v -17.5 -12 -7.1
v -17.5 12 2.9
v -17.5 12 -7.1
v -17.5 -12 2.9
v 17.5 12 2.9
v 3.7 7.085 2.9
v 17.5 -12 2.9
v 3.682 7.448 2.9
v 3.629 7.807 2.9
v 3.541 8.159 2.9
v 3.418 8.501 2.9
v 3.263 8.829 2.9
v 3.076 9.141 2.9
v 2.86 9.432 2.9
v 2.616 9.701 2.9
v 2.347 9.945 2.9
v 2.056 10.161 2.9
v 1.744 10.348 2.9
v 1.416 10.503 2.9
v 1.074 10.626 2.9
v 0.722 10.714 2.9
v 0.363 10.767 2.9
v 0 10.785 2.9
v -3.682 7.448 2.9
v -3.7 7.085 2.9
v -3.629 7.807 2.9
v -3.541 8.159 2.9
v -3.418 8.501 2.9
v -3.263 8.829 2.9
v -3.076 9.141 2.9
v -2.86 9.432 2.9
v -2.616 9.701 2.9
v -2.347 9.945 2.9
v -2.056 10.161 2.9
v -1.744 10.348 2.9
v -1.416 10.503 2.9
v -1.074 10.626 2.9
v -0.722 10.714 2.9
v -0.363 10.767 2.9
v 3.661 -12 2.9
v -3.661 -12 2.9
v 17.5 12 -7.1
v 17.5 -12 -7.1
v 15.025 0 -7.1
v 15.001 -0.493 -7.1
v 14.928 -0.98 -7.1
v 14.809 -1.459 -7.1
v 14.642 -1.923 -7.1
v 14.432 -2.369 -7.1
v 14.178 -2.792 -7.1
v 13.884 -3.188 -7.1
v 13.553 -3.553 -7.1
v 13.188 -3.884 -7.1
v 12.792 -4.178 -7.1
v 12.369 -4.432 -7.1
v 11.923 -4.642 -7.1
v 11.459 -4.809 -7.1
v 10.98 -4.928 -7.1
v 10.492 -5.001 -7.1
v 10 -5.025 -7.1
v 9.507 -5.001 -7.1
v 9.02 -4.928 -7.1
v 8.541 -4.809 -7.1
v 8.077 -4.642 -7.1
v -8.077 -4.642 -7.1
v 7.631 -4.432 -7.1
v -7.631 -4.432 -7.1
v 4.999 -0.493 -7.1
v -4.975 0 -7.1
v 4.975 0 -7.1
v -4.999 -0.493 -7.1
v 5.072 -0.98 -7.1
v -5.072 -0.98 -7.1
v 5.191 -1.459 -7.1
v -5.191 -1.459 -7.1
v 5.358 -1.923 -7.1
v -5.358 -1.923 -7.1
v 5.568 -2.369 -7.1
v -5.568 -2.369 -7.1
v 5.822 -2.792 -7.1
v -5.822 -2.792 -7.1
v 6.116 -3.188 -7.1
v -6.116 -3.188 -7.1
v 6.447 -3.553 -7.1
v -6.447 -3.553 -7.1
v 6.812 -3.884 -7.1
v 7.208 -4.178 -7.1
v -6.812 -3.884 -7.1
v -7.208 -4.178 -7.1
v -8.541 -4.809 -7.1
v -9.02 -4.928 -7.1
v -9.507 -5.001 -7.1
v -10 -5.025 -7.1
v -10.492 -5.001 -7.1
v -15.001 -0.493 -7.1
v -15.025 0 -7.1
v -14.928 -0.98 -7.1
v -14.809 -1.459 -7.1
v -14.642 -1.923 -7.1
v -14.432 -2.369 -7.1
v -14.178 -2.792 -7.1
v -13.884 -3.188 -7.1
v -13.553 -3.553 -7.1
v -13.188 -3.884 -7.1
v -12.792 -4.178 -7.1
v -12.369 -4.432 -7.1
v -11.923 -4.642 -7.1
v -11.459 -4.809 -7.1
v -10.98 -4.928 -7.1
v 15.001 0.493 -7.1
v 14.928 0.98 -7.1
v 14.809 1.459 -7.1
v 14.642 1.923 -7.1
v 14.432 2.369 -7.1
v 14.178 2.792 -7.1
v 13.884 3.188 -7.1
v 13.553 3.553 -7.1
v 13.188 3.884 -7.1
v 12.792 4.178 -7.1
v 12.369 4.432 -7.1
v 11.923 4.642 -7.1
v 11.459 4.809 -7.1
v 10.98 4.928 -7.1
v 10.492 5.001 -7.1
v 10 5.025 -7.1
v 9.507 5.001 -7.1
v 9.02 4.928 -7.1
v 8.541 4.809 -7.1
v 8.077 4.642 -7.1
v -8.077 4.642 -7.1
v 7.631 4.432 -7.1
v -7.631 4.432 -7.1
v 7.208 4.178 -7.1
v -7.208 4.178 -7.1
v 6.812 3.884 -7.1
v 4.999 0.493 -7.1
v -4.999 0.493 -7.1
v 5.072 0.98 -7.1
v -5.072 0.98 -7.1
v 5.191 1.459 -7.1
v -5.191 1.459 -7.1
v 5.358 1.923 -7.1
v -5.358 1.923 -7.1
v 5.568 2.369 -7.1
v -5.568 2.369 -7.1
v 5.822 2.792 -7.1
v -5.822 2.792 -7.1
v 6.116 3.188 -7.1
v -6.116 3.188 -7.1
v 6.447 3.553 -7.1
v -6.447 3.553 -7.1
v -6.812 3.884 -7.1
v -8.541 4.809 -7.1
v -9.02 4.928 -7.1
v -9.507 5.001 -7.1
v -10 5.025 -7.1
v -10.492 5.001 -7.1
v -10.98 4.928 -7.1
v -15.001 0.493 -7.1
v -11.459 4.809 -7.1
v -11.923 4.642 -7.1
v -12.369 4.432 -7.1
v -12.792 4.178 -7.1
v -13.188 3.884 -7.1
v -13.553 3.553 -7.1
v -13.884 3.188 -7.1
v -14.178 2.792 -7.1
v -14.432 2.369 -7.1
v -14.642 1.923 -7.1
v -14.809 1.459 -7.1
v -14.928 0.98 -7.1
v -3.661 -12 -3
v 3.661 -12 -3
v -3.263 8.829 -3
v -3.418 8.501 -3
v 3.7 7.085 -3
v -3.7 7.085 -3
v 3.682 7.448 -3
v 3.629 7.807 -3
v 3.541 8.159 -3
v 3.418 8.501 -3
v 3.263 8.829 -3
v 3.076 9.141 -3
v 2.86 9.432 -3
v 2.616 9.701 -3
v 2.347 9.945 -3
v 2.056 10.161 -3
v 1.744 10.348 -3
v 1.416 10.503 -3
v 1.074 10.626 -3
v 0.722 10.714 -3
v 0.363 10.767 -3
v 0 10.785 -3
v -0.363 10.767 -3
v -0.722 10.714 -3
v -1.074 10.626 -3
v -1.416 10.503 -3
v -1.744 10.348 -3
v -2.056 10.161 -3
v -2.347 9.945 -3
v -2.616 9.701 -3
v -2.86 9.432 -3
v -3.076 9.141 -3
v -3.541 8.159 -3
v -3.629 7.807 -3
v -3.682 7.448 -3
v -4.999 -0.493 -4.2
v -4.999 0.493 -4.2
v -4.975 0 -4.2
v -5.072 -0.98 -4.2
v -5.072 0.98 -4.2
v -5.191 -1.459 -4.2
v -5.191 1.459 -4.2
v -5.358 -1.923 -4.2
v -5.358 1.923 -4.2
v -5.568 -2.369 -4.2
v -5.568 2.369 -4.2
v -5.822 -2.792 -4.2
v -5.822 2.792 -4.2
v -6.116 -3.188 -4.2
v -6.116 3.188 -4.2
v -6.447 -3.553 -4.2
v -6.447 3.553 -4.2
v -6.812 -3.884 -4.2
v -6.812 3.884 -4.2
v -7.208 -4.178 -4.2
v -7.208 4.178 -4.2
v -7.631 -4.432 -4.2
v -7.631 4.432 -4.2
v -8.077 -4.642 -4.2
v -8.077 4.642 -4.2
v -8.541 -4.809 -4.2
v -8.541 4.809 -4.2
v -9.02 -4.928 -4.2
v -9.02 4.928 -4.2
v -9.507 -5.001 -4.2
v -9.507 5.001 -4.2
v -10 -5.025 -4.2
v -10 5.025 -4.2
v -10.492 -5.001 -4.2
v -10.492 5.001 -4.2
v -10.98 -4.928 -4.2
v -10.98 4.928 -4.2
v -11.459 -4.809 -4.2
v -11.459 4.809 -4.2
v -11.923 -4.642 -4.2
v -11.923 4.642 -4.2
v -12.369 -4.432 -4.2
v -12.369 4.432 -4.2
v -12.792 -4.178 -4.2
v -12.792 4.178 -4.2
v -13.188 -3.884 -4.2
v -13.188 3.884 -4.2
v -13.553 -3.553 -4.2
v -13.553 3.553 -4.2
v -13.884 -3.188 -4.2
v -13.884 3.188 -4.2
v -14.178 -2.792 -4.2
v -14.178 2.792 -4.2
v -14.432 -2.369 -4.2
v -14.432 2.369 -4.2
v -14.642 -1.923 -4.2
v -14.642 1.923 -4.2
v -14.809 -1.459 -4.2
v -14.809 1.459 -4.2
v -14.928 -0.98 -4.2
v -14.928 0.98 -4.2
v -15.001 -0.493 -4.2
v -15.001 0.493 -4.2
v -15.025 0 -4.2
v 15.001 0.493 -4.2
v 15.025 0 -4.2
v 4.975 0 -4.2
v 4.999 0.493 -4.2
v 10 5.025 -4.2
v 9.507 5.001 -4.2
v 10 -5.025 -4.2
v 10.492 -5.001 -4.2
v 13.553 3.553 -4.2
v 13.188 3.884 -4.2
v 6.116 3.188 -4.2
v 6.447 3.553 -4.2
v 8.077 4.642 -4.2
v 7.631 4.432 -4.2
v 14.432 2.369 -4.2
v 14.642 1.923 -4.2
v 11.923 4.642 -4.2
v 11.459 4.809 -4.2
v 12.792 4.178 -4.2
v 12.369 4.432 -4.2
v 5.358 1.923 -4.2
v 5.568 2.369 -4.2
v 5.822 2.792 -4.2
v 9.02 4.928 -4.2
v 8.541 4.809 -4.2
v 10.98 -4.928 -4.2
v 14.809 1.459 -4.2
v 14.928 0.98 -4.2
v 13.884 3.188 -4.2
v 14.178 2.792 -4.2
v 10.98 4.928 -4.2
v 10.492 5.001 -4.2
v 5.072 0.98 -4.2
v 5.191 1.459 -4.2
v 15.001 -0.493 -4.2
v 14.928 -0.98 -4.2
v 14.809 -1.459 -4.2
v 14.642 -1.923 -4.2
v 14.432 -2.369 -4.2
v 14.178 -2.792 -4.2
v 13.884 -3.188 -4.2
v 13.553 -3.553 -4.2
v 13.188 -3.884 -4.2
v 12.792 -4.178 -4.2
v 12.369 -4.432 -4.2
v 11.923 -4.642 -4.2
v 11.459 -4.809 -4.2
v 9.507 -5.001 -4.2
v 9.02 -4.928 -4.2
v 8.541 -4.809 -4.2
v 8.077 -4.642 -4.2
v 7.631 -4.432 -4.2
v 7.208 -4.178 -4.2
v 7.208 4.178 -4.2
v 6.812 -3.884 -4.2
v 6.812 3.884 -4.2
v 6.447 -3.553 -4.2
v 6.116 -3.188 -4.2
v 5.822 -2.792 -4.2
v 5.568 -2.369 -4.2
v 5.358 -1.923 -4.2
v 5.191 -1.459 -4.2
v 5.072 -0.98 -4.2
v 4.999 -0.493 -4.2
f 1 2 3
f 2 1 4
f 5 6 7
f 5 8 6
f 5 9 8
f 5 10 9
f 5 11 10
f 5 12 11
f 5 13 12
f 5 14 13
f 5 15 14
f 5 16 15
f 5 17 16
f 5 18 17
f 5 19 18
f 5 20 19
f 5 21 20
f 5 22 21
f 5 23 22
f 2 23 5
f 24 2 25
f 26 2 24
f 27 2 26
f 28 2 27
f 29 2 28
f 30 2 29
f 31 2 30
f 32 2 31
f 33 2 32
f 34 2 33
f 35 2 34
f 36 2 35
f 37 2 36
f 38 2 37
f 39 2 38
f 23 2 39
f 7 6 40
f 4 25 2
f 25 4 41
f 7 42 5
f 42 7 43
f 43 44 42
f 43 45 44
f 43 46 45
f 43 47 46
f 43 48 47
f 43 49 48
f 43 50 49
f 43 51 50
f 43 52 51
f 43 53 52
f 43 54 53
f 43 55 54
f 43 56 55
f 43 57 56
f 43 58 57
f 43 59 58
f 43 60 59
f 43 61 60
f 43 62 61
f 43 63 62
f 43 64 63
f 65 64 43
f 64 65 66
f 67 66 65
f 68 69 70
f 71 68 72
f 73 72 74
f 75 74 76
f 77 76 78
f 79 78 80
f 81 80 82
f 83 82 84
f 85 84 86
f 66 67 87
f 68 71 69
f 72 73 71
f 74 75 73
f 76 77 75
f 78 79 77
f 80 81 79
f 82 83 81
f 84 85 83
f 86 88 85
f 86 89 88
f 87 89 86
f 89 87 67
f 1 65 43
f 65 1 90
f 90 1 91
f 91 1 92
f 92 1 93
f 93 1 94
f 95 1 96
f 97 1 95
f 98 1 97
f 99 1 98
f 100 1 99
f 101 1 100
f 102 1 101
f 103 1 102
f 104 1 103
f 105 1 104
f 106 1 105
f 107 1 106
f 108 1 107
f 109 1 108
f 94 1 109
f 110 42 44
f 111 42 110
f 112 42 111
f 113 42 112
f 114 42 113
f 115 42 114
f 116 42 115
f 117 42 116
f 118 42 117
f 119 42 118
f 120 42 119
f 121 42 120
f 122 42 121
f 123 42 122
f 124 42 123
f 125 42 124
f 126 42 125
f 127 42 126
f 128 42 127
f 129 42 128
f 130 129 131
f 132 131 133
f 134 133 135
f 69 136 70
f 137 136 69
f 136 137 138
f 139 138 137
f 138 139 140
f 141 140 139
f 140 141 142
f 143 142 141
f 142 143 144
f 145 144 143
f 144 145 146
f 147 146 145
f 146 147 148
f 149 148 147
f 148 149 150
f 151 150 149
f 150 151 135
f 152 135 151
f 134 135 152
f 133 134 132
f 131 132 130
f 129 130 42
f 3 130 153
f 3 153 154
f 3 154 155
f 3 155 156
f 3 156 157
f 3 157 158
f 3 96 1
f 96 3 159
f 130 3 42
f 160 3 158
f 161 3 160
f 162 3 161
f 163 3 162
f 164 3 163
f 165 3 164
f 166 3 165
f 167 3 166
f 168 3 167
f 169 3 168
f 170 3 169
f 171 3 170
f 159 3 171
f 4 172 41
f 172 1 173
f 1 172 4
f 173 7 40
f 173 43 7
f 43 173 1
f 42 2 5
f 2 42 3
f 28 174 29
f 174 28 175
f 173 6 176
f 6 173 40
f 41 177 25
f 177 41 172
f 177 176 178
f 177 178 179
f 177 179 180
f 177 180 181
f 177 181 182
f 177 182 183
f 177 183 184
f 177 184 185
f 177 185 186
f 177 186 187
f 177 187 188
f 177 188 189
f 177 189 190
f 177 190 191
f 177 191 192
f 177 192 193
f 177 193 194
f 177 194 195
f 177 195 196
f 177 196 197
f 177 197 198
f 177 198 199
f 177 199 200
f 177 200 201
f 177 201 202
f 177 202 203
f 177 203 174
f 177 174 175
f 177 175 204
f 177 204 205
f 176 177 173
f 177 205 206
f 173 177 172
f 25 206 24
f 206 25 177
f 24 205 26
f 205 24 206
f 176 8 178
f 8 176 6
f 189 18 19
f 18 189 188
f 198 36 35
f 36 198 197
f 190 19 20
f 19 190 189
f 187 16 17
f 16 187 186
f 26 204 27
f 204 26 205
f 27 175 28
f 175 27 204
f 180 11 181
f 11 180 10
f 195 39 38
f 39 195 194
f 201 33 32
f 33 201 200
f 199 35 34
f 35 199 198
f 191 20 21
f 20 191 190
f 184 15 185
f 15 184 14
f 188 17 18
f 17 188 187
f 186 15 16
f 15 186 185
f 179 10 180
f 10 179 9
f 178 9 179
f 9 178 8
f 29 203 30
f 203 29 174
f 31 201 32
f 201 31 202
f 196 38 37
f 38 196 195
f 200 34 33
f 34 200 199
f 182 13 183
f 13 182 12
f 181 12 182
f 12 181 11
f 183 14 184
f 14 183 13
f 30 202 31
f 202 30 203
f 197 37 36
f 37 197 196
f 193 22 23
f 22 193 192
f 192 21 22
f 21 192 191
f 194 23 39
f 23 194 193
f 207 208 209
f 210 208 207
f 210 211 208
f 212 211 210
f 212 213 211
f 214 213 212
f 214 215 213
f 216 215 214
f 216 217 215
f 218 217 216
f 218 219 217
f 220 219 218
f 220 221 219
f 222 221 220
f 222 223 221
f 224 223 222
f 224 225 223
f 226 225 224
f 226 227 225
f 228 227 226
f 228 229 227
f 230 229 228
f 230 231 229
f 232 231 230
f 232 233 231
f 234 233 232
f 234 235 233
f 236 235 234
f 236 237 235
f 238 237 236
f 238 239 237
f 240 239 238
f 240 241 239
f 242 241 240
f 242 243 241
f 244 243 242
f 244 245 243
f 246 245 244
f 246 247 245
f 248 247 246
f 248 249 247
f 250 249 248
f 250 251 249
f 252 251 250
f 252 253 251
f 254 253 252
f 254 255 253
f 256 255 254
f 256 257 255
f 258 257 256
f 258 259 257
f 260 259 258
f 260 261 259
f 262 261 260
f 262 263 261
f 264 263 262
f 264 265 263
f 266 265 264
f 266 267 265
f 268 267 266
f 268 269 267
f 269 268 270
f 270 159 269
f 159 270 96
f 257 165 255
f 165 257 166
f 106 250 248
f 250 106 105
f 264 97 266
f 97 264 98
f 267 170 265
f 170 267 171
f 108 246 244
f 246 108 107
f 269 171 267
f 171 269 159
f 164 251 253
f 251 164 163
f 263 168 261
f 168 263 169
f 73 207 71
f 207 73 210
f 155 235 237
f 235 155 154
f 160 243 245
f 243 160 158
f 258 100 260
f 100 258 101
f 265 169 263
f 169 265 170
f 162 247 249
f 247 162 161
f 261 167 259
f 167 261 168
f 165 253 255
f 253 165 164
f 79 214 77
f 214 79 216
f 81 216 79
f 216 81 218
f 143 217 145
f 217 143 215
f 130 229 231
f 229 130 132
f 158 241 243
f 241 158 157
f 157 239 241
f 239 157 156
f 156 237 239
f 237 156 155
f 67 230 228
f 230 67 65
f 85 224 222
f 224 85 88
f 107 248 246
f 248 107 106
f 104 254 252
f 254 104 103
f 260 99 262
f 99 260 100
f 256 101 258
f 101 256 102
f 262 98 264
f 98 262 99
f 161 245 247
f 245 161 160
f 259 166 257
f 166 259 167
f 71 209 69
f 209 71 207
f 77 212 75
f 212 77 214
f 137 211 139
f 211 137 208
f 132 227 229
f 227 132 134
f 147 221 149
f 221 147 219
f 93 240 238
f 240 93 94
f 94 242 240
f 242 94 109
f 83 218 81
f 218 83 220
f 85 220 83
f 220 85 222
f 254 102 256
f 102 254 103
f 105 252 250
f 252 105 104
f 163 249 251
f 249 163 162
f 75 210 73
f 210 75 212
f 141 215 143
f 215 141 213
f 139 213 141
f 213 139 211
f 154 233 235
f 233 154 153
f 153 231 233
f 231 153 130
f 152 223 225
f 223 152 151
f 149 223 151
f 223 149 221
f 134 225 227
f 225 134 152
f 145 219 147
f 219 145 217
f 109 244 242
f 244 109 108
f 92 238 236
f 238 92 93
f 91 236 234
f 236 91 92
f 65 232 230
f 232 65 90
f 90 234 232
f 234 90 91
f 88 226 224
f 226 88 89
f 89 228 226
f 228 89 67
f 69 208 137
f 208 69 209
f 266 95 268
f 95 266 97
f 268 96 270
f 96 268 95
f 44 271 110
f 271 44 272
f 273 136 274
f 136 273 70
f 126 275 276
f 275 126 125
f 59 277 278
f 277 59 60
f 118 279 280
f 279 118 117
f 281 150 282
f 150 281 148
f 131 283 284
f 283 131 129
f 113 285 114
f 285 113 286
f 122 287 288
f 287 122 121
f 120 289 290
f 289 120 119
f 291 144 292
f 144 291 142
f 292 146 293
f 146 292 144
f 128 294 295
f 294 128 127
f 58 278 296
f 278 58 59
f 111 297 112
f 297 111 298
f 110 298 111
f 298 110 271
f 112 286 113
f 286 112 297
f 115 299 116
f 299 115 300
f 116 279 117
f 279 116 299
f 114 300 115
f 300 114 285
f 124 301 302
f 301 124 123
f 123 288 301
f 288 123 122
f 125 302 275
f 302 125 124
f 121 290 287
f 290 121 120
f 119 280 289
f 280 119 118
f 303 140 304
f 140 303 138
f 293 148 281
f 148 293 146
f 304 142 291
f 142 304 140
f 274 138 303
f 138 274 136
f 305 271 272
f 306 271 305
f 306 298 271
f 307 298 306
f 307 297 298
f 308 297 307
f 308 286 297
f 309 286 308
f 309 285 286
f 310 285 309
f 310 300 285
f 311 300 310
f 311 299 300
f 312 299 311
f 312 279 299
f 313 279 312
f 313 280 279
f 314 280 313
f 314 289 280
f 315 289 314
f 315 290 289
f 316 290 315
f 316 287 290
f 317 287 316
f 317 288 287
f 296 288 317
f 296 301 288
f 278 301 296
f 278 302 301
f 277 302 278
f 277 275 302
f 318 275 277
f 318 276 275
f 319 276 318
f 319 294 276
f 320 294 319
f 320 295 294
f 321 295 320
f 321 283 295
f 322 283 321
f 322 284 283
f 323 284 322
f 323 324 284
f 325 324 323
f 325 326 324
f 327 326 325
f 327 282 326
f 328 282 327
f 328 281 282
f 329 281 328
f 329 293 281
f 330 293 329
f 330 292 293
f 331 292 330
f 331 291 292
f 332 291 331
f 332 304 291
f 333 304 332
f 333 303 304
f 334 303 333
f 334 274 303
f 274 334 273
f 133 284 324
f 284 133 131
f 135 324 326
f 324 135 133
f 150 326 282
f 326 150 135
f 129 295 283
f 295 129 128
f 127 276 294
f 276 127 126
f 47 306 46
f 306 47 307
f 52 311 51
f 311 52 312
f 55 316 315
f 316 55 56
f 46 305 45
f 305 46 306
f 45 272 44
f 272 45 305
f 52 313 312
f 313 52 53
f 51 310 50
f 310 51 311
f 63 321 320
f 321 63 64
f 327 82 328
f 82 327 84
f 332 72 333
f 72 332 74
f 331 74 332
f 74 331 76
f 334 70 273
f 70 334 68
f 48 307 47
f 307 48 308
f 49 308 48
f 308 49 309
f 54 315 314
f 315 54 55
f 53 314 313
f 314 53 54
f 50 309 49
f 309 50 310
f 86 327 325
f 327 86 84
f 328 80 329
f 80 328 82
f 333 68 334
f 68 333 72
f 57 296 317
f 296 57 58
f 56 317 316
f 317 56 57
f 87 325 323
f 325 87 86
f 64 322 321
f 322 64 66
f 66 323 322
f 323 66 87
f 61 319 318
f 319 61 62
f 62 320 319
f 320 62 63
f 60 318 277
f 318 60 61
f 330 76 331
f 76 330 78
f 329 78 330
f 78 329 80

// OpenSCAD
// Aftershokz Aeropex Charger Dock
$fn = 64;
module Charger() {
    // Charger Dimentions
    Width = 7.32;
    Length = 21.57;
    Height = 6;
    EndRadius = 3.7;
    

    hull() {
        translate([0, -EndRadius, 0]) {
            cube(size=[Width, Length-EndRadius, Height], center=true);
        }
        translate([0, Length/2-EndRadius, 0]) {
            cylinder(r=EndRadius, h=6, center=true);
        }
    }    
}
Width = 35;
Length = 24;
Height = 10;

difference() {
    translate([0, 0, -2.1]) {
        cube(size=[Width, Length, Height], center=true);
    }
    
    Charger();
    mirror([1, 0, 0]) {
        translate([10, 0, -(Height/2+0.7)]) {
            cylinder(r=10.05/2, h=3, center=true);
        }
    }
    mirror([0, 0, 0]) {
        translate([10, 0, -(Height/2+0.7)]) {
            cylinder(r=10.05/2, h=3, center=true);
        }
    }
}
